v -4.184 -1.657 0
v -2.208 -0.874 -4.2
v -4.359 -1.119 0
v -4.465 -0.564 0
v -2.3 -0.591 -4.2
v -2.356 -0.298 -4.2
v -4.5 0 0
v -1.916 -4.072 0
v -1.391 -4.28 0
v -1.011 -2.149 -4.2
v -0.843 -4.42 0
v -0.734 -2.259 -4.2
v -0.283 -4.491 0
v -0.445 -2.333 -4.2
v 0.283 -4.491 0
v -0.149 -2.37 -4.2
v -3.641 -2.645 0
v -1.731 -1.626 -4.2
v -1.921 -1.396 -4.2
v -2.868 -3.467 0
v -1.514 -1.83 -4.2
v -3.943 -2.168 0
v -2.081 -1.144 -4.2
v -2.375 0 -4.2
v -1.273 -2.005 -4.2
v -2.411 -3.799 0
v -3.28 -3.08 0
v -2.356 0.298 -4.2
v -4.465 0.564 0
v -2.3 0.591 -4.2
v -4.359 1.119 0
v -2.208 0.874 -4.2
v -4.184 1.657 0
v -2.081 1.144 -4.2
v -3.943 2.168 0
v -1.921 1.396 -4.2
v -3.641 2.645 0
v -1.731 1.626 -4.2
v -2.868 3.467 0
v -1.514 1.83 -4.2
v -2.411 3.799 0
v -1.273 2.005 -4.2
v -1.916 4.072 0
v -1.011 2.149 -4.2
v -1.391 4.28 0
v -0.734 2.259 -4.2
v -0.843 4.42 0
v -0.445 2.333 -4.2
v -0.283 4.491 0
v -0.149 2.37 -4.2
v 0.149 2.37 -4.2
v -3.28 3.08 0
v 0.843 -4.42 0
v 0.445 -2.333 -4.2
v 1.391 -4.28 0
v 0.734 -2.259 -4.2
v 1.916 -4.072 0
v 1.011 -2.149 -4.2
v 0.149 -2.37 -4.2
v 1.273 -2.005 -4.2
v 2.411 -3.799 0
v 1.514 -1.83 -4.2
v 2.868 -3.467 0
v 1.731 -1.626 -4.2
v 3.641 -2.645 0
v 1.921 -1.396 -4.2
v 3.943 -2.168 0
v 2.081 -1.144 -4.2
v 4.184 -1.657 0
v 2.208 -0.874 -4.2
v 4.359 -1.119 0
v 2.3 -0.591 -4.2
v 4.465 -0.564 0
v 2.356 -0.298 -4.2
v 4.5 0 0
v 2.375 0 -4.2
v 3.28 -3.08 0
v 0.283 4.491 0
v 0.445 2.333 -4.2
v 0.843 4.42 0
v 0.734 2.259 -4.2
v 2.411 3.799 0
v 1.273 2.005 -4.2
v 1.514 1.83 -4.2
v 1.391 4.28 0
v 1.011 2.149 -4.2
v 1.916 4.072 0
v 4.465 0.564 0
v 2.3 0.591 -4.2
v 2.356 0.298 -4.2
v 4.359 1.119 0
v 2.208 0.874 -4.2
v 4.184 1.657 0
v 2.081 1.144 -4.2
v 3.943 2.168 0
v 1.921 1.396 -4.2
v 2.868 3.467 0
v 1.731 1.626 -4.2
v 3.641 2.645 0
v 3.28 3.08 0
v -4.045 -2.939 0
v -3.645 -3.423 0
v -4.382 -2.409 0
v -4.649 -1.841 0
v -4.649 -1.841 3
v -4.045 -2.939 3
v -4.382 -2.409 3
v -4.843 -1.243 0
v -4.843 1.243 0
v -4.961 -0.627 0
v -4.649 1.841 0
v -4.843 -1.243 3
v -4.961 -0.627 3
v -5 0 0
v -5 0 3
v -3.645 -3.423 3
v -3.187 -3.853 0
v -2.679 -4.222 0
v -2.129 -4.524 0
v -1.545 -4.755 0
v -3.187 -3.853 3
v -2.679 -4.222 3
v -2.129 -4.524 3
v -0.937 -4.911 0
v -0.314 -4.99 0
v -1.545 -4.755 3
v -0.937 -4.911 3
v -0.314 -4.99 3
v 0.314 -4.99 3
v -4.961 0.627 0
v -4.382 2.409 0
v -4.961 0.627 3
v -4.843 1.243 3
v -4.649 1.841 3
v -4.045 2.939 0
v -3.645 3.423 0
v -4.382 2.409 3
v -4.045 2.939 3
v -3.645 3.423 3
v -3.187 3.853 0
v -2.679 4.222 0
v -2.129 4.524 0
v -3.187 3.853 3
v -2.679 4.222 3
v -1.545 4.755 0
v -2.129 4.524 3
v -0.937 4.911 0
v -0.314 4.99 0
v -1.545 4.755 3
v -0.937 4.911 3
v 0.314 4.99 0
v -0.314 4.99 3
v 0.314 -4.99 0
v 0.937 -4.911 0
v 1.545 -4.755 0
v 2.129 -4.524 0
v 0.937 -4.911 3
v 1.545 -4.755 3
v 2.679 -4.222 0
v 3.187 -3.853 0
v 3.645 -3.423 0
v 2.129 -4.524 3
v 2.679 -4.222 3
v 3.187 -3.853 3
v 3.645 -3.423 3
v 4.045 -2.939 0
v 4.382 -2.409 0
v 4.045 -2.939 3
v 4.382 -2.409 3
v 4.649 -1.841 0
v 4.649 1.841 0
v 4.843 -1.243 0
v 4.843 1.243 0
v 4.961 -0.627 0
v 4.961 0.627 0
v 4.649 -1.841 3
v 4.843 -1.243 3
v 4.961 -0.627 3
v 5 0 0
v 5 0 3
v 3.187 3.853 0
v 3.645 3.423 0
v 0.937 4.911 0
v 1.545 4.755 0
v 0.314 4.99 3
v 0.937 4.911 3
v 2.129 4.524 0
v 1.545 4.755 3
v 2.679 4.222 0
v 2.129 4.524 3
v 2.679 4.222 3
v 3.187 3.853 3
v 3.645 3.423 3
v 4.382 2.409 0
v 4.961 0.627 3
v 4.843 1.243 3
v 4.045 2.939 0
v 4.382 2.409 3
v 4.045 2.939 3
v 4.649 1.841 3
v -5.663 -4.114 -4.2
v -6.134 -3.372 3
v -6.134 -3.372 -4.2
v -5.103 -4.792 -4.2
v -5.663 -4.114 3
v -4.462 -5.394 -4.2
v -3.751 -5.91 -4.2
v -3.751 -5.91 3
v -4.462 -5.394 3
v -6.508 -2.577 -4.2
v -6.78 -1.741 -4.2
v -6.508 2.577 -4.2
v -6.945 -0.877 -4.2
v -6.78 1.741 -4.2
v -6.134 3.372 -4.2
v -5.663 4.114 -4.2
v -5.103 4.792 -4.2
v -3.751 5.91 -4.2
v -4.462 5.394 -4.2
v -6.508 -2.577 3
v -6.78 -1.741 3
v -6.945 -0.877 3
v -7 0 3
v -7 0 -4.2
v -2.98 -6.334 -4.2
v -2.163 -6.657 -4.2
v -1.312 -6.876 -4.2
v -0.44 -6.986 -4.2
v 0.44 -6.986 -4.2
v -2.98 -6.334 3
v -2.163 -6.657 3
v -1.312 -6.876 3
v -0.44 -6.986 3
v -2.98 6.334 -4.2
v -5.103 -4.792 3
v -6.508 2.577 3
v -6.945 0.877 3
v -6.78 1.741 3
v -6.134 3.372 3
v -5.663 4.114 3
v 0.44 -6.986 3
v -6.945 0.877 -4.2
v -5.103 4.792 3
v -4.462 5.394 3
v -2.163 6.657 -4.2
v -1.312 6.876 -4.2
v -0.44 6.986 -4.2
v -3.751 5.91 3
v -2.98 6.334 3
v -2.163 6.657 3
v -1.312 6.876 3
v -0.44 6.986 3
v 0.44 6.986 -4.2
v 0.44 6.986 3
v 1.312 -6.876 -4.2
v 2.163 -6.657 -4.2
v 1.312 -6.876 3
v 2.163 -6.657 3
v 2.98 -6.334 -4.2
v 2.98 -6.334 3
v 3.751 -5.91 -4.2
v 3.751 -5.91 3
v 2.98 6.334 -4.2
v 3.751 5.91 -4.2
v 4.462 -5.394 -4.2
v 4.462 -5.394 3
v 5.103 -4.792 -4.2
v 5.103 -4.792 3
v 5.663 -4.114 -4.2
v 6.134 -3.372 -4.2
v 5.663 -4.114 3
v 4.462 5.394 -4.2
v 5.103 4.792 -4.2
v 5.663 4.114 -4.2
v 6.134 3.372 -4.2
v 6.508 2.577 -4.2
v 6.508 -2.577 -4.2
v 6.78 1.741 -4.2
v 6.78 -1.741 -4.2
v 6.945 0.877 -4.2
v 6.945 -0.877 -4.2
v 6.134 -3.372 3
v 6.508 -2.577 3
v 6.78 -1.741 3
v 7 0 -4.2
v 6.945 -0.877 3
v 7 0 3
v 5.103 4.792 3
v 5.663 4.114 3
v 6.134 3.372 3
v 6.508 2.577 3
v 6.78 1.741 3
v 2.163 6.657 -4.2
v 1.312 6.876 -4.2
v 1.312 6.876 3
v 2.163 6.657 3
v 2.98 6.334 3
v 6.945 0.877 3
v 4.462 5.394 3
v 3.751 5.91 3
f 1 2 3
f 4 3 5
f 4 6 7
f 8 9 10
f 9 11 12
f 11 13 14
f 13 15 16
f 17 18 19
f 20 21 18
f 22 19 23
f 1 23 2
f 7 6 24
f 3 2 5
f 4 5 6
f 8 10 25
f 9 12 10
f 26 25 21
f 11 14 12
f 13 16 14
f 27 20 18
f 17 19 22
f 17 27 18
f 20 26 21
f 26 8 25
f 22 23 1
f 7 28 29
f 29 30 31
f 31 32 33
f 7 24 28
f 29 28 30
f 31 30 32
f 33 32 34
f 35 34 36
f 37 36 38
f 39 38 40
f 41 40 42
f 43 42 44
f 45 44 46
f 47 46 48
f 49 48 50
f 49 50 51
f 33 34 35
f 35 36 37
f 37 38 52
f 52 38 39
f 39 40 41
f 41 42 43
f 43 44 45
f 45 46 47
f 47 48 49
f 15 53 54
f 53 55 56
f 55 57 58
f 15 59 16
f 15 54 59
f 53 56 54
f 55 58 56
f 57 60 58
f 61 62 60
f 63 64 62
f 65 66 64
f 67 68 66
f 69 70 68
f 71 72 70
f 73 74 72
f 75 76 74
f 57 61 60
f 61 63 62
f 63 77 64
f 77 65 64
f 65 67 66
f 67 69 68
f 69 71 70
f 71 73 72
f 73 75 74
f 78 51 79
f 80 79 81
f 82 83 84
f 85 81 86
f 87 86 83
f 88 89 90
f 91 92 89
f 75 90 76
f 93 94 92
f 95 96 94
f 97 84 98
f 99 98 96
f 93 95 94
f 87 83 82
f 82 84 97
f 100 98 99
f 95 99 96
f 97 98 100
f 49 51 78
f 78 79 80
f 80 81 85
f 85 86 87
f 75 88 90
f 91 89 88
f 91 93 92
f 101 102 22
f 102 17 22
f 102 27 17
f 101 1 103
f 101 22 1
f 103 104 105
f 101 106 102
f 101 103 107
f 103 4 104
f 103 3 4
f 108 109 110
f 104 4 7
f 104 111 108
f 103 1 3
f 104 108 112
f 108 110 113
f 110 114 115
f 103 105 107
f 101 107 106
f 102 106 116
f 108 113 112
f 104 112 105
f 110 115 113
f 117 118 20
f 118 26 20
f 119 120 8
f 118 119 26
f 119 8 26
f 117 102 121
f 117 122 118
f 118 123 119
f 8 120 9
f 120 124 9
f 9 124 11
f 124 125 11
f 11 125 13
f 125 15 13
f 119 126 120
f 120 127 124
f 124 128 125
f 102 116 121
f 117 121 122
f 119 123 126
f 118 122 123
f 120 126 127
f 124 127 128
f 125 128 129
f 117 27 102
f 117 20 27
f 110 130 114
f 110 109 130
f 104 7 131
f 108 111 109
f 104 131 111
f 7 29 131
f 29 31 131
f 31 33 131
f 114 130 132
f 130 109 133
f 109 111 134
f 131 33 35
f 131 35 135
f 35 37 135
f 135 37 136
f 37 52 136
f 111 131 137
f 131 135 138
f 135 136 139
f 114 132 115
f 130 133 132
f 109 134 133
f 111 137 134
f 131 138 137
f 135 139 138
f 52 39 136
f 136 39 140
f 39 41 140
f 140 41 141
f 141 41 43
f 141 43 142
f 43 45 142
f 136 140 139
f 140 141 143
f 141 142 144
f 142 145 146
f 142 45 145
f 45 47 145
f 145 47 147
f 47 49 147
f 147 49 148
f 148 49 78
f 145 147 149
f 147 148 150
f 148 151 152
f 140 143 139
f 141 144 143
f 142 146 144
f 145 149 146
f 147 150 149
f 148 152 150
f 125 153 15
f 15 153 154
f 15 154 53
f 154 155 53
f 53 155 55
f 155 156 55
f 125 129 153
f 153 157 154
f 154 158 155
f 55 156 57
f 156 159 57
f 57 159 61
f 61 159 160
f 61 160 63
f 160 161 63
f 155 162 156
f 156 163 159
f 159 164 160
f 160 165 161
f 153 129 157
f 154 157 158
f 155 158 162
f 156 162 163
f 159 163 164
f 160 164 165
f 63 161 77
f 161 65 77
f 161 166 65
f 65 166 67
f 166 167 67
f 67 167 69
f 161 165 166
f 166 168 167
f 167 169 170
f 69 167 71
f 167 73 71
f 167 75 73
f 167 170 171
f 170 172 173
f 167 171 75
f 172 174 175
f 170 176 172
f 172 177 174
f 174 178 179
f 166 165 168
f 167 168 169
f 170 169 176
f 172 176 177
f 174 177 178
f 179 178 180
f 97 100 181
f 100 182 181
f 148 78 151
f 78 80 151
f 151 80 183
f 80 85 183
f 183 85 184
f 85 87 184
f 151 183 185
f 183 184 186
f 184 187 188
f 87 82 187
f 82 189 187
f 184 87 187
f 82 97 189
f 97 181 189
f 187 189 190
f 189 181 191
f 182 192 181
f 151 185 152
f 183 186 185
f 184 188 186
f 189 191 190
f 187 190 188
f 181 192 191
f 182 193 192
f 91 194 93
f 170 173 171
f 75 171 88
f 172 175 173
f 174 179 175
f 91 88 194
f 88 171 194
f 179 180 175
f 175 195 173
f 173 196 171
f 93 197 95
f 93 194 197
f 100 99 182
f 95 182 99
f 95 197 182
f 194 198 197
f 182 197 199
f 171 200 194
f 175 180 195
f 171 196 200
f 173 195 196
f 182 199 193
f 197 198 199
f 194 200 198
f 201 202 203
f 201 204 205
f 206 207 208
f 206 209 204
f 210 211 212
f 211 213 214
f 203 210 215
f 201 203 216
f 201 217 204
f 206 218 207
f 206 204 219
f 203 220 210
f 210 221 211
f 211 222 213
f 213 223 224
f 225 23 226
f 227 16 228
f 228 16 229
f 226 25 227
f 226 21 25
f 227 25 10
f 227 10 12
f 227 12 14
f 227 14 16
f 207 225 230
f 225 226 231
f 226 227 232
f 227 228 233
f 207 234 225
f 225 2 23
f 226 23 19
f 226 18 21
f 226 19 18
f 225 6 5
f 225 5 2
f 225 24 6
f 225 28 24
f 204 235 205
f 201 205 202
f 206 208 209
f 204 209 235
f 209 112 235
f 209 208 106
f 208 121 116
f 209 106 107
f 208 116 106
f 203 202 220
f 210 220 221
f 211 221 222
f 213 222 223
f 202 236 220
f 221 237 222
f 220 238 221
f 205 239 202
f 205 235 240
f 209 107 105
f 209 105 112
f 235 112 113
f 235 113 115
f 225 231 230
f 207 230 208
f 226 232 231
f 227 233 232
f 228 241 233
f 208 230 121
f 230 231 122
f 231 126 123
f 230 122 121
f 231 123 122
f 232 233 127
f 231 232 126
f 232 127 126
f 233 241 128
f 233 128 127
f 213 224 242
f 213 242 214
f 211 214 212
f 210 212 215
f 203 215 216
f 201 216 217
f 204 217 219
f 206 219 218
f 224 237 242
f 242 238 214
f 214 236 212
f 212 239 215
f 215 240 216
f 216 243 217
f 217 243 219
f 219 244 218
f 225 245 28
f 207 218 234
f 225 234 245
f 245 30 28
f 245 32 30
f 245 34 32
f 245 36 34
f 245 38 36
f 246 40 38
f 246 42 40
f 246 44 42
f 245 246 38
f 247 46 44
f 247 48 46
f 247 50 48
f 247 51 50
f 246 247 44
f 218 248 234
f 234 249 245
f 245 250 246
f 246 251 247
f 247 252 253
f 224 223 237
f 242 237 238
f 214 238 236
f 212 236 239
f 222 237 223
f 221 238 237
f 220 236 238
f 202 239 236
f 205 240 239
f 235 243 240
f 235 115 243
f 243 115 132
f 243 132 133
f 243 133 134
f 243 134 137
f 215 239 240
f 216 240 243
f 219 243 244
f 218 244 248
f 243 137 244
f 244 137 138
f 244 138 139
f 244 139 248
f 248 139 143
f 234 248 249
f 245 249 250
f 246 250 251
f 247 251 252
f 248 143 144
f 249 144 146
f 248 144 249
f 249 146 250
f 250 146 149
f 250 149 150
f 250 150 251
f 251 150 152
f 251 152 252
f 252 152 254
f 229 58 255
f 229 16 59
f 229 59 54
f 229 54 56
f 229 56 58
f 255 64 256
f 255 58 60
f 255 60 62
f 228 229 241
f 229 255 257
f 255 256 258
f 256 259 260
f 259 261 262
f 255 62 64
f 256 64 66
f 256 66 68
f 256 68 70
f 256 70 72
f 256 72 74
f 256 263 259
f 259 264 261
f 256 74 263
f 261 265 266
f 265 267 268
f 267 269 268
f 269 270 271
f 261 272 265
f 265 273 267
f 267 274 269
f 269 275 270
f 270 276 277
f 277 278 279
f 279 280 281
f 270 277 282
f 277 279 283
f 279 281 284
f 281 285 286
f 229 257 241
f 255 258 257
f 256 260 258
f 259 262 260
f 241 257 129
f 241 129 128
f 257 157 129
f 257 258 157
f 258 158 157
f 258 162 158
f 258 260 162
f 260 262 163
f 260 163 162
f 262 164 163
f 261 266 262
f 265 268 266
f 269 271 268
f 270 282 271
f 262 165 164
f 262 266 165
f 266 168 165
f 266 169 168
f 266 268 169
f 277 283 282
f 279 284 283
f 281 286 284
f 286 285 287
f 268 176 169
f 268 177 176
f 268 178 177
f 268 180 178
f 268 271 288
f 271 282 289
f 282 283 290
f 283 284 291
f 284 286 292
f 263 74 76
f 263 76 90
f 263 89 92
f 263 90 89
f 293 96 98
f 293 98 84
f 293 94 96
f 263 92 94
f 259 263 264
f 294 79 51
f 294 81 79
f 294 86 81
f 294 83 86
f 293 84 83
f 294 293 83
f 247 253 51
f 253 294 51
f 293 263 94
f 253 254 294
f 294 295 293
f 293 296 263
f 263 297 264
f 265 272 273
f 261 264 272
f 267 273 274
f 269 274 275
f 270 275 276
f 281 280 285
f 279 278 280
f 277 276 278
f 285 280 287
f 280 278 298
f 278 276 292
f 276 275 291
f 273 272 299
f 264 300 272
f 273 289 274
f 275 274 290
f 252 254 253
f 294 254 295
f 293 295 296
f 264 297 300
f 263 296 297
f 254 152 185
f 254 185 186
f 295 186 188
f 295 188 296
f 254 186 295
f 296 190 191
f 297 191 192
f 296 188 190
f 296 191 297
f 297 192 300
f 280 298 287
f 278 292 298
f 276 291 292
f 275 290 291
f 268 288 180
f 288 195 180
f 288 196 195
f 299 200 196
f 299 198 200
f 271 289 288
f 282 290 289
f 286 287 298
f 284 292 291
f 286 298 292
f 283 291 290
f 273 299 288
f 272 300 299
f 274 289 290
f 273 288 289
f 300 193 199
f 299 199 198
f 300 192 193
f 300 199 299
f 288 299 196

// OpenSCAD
$fn = 50;


difference() {
	union() {
		translate(v = [0, 0, -4.2000000000]) {
			cylinder(h = 7.2000000000, r = 7.0000000000);
		}
	}
	union() {
		translate(v = [0, 0, 0]) {
			rotate(a = [0, 0, 0]) {
				difference() {
					union() {
						translate(v = [0, 0, -7.2000000000]) {
							cylinder(h = 7.2000000000, r = 2.2500000000);
						}
						translate(v = [0, 0, -4.2000000000]) {
							cylinder(h = 4.2000000000, r1 = 2.3750000000, r2 = 4.5000000000);
						}
						translate(v = [0, 0, -7.2000000000]) {
							cylinder(h = 7.2000000000, r = 2.3750000000);
						}
						translate(v = [0, 0, -7.2000000000]) {
							cylinder(h = 7.2000000000, r = 2.2500000000);
						}
					}
					union();
				}
			}
		}
		#cylinder(h = 3, r = 5.0000000000);
	}
}
